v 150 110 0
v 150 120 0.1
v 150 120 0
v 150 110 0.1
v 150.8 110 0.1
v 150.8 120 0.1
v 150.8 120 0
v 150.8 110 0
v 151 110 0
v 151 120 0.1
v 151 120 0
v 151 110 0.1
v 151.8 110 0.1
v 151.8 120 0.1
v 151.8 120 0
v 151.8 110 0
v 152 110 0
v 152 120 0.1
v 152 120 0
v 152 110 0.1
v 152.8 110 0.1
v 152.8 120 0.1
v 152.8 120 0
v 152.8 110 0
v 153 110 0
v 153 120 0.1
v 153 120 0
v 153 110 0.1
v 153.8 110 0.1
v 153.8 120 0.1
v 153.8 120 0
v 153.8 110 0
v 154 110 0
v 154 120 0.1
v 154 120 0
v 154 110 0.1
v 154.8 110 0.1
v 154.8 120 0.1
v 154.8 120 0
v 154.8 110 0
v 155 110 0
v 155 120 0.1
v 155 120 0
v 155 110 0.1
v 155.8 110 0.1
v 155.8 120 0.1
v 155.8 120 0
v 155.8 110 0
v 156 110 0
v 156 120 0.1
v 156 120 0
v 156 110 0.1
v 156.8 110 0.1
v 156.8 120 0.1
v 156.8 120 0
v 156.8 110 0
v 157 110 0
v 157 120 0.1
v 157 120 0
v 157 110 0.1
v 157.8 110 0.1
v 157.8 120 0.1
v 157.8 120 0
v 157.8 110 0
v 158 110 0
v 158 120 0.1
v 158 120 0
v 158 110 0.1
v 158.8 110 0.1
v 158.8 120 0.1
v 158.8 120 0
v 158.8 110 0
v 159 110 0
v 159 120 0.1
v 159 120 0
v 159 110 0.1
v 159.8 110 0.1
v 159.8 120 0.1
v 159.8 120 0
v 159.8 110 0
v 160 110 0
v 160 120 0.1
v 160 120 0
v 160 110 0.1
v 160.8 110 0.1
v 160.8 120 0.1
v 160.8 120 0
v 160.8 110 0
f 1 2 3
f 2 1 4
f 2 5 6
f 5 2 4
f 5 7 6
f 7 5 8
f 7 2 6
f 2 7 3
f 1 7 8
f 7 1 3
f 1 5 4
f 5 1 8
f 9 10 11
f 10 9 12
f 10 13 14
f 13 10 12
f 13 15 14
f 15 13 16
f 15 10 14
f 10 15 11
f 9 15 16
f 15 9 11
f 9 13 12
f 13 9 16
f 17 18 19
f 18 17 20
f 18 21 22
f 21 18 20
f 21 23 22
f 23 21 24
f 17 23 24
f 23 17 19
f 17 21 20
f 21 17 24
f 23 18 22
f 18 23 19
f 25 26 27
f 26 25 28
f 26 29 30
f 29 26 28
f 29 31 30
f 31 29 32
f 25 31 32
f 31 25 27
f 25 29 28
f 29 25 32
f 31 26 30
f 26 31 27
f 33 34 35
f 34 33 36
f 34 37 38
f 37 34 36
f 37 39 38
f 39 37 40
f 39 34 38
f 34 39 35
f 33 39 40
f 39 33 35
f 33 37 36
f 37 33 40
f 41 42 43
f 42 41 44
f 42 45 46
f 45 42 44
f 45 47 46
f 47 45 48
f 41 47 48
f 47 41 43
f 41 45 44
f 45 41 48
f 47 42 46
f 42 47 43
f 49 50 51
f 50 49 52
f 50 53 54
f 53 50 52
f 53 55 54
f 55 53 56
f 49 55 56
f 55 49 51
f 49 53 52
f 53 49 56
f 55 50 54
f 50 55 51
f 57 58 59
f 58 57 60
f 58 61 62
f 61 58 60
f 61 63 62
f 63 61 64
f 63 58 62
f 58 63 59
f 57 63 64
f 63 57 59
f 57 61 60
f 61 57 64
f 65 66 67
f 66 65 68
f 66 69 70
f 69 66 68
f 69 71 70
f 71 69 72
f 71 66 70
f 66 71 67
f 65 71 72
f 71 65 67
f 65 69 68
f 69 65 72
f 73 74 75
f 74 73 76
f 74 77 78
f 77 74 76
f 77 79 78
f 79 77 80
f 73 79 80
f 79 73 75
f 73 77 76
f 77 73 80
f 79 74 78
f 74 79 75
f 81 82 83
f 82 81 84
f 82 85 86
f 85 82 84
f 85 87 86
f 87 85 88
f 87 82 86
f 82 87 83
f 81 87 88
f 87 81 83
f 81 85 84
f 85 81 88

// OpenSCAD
translate([10+140,10+100,0])
        for (i = [0 : 10]){
            translate([i,0,0])
                cube(size = [0.8,10,0.1]);
    }
